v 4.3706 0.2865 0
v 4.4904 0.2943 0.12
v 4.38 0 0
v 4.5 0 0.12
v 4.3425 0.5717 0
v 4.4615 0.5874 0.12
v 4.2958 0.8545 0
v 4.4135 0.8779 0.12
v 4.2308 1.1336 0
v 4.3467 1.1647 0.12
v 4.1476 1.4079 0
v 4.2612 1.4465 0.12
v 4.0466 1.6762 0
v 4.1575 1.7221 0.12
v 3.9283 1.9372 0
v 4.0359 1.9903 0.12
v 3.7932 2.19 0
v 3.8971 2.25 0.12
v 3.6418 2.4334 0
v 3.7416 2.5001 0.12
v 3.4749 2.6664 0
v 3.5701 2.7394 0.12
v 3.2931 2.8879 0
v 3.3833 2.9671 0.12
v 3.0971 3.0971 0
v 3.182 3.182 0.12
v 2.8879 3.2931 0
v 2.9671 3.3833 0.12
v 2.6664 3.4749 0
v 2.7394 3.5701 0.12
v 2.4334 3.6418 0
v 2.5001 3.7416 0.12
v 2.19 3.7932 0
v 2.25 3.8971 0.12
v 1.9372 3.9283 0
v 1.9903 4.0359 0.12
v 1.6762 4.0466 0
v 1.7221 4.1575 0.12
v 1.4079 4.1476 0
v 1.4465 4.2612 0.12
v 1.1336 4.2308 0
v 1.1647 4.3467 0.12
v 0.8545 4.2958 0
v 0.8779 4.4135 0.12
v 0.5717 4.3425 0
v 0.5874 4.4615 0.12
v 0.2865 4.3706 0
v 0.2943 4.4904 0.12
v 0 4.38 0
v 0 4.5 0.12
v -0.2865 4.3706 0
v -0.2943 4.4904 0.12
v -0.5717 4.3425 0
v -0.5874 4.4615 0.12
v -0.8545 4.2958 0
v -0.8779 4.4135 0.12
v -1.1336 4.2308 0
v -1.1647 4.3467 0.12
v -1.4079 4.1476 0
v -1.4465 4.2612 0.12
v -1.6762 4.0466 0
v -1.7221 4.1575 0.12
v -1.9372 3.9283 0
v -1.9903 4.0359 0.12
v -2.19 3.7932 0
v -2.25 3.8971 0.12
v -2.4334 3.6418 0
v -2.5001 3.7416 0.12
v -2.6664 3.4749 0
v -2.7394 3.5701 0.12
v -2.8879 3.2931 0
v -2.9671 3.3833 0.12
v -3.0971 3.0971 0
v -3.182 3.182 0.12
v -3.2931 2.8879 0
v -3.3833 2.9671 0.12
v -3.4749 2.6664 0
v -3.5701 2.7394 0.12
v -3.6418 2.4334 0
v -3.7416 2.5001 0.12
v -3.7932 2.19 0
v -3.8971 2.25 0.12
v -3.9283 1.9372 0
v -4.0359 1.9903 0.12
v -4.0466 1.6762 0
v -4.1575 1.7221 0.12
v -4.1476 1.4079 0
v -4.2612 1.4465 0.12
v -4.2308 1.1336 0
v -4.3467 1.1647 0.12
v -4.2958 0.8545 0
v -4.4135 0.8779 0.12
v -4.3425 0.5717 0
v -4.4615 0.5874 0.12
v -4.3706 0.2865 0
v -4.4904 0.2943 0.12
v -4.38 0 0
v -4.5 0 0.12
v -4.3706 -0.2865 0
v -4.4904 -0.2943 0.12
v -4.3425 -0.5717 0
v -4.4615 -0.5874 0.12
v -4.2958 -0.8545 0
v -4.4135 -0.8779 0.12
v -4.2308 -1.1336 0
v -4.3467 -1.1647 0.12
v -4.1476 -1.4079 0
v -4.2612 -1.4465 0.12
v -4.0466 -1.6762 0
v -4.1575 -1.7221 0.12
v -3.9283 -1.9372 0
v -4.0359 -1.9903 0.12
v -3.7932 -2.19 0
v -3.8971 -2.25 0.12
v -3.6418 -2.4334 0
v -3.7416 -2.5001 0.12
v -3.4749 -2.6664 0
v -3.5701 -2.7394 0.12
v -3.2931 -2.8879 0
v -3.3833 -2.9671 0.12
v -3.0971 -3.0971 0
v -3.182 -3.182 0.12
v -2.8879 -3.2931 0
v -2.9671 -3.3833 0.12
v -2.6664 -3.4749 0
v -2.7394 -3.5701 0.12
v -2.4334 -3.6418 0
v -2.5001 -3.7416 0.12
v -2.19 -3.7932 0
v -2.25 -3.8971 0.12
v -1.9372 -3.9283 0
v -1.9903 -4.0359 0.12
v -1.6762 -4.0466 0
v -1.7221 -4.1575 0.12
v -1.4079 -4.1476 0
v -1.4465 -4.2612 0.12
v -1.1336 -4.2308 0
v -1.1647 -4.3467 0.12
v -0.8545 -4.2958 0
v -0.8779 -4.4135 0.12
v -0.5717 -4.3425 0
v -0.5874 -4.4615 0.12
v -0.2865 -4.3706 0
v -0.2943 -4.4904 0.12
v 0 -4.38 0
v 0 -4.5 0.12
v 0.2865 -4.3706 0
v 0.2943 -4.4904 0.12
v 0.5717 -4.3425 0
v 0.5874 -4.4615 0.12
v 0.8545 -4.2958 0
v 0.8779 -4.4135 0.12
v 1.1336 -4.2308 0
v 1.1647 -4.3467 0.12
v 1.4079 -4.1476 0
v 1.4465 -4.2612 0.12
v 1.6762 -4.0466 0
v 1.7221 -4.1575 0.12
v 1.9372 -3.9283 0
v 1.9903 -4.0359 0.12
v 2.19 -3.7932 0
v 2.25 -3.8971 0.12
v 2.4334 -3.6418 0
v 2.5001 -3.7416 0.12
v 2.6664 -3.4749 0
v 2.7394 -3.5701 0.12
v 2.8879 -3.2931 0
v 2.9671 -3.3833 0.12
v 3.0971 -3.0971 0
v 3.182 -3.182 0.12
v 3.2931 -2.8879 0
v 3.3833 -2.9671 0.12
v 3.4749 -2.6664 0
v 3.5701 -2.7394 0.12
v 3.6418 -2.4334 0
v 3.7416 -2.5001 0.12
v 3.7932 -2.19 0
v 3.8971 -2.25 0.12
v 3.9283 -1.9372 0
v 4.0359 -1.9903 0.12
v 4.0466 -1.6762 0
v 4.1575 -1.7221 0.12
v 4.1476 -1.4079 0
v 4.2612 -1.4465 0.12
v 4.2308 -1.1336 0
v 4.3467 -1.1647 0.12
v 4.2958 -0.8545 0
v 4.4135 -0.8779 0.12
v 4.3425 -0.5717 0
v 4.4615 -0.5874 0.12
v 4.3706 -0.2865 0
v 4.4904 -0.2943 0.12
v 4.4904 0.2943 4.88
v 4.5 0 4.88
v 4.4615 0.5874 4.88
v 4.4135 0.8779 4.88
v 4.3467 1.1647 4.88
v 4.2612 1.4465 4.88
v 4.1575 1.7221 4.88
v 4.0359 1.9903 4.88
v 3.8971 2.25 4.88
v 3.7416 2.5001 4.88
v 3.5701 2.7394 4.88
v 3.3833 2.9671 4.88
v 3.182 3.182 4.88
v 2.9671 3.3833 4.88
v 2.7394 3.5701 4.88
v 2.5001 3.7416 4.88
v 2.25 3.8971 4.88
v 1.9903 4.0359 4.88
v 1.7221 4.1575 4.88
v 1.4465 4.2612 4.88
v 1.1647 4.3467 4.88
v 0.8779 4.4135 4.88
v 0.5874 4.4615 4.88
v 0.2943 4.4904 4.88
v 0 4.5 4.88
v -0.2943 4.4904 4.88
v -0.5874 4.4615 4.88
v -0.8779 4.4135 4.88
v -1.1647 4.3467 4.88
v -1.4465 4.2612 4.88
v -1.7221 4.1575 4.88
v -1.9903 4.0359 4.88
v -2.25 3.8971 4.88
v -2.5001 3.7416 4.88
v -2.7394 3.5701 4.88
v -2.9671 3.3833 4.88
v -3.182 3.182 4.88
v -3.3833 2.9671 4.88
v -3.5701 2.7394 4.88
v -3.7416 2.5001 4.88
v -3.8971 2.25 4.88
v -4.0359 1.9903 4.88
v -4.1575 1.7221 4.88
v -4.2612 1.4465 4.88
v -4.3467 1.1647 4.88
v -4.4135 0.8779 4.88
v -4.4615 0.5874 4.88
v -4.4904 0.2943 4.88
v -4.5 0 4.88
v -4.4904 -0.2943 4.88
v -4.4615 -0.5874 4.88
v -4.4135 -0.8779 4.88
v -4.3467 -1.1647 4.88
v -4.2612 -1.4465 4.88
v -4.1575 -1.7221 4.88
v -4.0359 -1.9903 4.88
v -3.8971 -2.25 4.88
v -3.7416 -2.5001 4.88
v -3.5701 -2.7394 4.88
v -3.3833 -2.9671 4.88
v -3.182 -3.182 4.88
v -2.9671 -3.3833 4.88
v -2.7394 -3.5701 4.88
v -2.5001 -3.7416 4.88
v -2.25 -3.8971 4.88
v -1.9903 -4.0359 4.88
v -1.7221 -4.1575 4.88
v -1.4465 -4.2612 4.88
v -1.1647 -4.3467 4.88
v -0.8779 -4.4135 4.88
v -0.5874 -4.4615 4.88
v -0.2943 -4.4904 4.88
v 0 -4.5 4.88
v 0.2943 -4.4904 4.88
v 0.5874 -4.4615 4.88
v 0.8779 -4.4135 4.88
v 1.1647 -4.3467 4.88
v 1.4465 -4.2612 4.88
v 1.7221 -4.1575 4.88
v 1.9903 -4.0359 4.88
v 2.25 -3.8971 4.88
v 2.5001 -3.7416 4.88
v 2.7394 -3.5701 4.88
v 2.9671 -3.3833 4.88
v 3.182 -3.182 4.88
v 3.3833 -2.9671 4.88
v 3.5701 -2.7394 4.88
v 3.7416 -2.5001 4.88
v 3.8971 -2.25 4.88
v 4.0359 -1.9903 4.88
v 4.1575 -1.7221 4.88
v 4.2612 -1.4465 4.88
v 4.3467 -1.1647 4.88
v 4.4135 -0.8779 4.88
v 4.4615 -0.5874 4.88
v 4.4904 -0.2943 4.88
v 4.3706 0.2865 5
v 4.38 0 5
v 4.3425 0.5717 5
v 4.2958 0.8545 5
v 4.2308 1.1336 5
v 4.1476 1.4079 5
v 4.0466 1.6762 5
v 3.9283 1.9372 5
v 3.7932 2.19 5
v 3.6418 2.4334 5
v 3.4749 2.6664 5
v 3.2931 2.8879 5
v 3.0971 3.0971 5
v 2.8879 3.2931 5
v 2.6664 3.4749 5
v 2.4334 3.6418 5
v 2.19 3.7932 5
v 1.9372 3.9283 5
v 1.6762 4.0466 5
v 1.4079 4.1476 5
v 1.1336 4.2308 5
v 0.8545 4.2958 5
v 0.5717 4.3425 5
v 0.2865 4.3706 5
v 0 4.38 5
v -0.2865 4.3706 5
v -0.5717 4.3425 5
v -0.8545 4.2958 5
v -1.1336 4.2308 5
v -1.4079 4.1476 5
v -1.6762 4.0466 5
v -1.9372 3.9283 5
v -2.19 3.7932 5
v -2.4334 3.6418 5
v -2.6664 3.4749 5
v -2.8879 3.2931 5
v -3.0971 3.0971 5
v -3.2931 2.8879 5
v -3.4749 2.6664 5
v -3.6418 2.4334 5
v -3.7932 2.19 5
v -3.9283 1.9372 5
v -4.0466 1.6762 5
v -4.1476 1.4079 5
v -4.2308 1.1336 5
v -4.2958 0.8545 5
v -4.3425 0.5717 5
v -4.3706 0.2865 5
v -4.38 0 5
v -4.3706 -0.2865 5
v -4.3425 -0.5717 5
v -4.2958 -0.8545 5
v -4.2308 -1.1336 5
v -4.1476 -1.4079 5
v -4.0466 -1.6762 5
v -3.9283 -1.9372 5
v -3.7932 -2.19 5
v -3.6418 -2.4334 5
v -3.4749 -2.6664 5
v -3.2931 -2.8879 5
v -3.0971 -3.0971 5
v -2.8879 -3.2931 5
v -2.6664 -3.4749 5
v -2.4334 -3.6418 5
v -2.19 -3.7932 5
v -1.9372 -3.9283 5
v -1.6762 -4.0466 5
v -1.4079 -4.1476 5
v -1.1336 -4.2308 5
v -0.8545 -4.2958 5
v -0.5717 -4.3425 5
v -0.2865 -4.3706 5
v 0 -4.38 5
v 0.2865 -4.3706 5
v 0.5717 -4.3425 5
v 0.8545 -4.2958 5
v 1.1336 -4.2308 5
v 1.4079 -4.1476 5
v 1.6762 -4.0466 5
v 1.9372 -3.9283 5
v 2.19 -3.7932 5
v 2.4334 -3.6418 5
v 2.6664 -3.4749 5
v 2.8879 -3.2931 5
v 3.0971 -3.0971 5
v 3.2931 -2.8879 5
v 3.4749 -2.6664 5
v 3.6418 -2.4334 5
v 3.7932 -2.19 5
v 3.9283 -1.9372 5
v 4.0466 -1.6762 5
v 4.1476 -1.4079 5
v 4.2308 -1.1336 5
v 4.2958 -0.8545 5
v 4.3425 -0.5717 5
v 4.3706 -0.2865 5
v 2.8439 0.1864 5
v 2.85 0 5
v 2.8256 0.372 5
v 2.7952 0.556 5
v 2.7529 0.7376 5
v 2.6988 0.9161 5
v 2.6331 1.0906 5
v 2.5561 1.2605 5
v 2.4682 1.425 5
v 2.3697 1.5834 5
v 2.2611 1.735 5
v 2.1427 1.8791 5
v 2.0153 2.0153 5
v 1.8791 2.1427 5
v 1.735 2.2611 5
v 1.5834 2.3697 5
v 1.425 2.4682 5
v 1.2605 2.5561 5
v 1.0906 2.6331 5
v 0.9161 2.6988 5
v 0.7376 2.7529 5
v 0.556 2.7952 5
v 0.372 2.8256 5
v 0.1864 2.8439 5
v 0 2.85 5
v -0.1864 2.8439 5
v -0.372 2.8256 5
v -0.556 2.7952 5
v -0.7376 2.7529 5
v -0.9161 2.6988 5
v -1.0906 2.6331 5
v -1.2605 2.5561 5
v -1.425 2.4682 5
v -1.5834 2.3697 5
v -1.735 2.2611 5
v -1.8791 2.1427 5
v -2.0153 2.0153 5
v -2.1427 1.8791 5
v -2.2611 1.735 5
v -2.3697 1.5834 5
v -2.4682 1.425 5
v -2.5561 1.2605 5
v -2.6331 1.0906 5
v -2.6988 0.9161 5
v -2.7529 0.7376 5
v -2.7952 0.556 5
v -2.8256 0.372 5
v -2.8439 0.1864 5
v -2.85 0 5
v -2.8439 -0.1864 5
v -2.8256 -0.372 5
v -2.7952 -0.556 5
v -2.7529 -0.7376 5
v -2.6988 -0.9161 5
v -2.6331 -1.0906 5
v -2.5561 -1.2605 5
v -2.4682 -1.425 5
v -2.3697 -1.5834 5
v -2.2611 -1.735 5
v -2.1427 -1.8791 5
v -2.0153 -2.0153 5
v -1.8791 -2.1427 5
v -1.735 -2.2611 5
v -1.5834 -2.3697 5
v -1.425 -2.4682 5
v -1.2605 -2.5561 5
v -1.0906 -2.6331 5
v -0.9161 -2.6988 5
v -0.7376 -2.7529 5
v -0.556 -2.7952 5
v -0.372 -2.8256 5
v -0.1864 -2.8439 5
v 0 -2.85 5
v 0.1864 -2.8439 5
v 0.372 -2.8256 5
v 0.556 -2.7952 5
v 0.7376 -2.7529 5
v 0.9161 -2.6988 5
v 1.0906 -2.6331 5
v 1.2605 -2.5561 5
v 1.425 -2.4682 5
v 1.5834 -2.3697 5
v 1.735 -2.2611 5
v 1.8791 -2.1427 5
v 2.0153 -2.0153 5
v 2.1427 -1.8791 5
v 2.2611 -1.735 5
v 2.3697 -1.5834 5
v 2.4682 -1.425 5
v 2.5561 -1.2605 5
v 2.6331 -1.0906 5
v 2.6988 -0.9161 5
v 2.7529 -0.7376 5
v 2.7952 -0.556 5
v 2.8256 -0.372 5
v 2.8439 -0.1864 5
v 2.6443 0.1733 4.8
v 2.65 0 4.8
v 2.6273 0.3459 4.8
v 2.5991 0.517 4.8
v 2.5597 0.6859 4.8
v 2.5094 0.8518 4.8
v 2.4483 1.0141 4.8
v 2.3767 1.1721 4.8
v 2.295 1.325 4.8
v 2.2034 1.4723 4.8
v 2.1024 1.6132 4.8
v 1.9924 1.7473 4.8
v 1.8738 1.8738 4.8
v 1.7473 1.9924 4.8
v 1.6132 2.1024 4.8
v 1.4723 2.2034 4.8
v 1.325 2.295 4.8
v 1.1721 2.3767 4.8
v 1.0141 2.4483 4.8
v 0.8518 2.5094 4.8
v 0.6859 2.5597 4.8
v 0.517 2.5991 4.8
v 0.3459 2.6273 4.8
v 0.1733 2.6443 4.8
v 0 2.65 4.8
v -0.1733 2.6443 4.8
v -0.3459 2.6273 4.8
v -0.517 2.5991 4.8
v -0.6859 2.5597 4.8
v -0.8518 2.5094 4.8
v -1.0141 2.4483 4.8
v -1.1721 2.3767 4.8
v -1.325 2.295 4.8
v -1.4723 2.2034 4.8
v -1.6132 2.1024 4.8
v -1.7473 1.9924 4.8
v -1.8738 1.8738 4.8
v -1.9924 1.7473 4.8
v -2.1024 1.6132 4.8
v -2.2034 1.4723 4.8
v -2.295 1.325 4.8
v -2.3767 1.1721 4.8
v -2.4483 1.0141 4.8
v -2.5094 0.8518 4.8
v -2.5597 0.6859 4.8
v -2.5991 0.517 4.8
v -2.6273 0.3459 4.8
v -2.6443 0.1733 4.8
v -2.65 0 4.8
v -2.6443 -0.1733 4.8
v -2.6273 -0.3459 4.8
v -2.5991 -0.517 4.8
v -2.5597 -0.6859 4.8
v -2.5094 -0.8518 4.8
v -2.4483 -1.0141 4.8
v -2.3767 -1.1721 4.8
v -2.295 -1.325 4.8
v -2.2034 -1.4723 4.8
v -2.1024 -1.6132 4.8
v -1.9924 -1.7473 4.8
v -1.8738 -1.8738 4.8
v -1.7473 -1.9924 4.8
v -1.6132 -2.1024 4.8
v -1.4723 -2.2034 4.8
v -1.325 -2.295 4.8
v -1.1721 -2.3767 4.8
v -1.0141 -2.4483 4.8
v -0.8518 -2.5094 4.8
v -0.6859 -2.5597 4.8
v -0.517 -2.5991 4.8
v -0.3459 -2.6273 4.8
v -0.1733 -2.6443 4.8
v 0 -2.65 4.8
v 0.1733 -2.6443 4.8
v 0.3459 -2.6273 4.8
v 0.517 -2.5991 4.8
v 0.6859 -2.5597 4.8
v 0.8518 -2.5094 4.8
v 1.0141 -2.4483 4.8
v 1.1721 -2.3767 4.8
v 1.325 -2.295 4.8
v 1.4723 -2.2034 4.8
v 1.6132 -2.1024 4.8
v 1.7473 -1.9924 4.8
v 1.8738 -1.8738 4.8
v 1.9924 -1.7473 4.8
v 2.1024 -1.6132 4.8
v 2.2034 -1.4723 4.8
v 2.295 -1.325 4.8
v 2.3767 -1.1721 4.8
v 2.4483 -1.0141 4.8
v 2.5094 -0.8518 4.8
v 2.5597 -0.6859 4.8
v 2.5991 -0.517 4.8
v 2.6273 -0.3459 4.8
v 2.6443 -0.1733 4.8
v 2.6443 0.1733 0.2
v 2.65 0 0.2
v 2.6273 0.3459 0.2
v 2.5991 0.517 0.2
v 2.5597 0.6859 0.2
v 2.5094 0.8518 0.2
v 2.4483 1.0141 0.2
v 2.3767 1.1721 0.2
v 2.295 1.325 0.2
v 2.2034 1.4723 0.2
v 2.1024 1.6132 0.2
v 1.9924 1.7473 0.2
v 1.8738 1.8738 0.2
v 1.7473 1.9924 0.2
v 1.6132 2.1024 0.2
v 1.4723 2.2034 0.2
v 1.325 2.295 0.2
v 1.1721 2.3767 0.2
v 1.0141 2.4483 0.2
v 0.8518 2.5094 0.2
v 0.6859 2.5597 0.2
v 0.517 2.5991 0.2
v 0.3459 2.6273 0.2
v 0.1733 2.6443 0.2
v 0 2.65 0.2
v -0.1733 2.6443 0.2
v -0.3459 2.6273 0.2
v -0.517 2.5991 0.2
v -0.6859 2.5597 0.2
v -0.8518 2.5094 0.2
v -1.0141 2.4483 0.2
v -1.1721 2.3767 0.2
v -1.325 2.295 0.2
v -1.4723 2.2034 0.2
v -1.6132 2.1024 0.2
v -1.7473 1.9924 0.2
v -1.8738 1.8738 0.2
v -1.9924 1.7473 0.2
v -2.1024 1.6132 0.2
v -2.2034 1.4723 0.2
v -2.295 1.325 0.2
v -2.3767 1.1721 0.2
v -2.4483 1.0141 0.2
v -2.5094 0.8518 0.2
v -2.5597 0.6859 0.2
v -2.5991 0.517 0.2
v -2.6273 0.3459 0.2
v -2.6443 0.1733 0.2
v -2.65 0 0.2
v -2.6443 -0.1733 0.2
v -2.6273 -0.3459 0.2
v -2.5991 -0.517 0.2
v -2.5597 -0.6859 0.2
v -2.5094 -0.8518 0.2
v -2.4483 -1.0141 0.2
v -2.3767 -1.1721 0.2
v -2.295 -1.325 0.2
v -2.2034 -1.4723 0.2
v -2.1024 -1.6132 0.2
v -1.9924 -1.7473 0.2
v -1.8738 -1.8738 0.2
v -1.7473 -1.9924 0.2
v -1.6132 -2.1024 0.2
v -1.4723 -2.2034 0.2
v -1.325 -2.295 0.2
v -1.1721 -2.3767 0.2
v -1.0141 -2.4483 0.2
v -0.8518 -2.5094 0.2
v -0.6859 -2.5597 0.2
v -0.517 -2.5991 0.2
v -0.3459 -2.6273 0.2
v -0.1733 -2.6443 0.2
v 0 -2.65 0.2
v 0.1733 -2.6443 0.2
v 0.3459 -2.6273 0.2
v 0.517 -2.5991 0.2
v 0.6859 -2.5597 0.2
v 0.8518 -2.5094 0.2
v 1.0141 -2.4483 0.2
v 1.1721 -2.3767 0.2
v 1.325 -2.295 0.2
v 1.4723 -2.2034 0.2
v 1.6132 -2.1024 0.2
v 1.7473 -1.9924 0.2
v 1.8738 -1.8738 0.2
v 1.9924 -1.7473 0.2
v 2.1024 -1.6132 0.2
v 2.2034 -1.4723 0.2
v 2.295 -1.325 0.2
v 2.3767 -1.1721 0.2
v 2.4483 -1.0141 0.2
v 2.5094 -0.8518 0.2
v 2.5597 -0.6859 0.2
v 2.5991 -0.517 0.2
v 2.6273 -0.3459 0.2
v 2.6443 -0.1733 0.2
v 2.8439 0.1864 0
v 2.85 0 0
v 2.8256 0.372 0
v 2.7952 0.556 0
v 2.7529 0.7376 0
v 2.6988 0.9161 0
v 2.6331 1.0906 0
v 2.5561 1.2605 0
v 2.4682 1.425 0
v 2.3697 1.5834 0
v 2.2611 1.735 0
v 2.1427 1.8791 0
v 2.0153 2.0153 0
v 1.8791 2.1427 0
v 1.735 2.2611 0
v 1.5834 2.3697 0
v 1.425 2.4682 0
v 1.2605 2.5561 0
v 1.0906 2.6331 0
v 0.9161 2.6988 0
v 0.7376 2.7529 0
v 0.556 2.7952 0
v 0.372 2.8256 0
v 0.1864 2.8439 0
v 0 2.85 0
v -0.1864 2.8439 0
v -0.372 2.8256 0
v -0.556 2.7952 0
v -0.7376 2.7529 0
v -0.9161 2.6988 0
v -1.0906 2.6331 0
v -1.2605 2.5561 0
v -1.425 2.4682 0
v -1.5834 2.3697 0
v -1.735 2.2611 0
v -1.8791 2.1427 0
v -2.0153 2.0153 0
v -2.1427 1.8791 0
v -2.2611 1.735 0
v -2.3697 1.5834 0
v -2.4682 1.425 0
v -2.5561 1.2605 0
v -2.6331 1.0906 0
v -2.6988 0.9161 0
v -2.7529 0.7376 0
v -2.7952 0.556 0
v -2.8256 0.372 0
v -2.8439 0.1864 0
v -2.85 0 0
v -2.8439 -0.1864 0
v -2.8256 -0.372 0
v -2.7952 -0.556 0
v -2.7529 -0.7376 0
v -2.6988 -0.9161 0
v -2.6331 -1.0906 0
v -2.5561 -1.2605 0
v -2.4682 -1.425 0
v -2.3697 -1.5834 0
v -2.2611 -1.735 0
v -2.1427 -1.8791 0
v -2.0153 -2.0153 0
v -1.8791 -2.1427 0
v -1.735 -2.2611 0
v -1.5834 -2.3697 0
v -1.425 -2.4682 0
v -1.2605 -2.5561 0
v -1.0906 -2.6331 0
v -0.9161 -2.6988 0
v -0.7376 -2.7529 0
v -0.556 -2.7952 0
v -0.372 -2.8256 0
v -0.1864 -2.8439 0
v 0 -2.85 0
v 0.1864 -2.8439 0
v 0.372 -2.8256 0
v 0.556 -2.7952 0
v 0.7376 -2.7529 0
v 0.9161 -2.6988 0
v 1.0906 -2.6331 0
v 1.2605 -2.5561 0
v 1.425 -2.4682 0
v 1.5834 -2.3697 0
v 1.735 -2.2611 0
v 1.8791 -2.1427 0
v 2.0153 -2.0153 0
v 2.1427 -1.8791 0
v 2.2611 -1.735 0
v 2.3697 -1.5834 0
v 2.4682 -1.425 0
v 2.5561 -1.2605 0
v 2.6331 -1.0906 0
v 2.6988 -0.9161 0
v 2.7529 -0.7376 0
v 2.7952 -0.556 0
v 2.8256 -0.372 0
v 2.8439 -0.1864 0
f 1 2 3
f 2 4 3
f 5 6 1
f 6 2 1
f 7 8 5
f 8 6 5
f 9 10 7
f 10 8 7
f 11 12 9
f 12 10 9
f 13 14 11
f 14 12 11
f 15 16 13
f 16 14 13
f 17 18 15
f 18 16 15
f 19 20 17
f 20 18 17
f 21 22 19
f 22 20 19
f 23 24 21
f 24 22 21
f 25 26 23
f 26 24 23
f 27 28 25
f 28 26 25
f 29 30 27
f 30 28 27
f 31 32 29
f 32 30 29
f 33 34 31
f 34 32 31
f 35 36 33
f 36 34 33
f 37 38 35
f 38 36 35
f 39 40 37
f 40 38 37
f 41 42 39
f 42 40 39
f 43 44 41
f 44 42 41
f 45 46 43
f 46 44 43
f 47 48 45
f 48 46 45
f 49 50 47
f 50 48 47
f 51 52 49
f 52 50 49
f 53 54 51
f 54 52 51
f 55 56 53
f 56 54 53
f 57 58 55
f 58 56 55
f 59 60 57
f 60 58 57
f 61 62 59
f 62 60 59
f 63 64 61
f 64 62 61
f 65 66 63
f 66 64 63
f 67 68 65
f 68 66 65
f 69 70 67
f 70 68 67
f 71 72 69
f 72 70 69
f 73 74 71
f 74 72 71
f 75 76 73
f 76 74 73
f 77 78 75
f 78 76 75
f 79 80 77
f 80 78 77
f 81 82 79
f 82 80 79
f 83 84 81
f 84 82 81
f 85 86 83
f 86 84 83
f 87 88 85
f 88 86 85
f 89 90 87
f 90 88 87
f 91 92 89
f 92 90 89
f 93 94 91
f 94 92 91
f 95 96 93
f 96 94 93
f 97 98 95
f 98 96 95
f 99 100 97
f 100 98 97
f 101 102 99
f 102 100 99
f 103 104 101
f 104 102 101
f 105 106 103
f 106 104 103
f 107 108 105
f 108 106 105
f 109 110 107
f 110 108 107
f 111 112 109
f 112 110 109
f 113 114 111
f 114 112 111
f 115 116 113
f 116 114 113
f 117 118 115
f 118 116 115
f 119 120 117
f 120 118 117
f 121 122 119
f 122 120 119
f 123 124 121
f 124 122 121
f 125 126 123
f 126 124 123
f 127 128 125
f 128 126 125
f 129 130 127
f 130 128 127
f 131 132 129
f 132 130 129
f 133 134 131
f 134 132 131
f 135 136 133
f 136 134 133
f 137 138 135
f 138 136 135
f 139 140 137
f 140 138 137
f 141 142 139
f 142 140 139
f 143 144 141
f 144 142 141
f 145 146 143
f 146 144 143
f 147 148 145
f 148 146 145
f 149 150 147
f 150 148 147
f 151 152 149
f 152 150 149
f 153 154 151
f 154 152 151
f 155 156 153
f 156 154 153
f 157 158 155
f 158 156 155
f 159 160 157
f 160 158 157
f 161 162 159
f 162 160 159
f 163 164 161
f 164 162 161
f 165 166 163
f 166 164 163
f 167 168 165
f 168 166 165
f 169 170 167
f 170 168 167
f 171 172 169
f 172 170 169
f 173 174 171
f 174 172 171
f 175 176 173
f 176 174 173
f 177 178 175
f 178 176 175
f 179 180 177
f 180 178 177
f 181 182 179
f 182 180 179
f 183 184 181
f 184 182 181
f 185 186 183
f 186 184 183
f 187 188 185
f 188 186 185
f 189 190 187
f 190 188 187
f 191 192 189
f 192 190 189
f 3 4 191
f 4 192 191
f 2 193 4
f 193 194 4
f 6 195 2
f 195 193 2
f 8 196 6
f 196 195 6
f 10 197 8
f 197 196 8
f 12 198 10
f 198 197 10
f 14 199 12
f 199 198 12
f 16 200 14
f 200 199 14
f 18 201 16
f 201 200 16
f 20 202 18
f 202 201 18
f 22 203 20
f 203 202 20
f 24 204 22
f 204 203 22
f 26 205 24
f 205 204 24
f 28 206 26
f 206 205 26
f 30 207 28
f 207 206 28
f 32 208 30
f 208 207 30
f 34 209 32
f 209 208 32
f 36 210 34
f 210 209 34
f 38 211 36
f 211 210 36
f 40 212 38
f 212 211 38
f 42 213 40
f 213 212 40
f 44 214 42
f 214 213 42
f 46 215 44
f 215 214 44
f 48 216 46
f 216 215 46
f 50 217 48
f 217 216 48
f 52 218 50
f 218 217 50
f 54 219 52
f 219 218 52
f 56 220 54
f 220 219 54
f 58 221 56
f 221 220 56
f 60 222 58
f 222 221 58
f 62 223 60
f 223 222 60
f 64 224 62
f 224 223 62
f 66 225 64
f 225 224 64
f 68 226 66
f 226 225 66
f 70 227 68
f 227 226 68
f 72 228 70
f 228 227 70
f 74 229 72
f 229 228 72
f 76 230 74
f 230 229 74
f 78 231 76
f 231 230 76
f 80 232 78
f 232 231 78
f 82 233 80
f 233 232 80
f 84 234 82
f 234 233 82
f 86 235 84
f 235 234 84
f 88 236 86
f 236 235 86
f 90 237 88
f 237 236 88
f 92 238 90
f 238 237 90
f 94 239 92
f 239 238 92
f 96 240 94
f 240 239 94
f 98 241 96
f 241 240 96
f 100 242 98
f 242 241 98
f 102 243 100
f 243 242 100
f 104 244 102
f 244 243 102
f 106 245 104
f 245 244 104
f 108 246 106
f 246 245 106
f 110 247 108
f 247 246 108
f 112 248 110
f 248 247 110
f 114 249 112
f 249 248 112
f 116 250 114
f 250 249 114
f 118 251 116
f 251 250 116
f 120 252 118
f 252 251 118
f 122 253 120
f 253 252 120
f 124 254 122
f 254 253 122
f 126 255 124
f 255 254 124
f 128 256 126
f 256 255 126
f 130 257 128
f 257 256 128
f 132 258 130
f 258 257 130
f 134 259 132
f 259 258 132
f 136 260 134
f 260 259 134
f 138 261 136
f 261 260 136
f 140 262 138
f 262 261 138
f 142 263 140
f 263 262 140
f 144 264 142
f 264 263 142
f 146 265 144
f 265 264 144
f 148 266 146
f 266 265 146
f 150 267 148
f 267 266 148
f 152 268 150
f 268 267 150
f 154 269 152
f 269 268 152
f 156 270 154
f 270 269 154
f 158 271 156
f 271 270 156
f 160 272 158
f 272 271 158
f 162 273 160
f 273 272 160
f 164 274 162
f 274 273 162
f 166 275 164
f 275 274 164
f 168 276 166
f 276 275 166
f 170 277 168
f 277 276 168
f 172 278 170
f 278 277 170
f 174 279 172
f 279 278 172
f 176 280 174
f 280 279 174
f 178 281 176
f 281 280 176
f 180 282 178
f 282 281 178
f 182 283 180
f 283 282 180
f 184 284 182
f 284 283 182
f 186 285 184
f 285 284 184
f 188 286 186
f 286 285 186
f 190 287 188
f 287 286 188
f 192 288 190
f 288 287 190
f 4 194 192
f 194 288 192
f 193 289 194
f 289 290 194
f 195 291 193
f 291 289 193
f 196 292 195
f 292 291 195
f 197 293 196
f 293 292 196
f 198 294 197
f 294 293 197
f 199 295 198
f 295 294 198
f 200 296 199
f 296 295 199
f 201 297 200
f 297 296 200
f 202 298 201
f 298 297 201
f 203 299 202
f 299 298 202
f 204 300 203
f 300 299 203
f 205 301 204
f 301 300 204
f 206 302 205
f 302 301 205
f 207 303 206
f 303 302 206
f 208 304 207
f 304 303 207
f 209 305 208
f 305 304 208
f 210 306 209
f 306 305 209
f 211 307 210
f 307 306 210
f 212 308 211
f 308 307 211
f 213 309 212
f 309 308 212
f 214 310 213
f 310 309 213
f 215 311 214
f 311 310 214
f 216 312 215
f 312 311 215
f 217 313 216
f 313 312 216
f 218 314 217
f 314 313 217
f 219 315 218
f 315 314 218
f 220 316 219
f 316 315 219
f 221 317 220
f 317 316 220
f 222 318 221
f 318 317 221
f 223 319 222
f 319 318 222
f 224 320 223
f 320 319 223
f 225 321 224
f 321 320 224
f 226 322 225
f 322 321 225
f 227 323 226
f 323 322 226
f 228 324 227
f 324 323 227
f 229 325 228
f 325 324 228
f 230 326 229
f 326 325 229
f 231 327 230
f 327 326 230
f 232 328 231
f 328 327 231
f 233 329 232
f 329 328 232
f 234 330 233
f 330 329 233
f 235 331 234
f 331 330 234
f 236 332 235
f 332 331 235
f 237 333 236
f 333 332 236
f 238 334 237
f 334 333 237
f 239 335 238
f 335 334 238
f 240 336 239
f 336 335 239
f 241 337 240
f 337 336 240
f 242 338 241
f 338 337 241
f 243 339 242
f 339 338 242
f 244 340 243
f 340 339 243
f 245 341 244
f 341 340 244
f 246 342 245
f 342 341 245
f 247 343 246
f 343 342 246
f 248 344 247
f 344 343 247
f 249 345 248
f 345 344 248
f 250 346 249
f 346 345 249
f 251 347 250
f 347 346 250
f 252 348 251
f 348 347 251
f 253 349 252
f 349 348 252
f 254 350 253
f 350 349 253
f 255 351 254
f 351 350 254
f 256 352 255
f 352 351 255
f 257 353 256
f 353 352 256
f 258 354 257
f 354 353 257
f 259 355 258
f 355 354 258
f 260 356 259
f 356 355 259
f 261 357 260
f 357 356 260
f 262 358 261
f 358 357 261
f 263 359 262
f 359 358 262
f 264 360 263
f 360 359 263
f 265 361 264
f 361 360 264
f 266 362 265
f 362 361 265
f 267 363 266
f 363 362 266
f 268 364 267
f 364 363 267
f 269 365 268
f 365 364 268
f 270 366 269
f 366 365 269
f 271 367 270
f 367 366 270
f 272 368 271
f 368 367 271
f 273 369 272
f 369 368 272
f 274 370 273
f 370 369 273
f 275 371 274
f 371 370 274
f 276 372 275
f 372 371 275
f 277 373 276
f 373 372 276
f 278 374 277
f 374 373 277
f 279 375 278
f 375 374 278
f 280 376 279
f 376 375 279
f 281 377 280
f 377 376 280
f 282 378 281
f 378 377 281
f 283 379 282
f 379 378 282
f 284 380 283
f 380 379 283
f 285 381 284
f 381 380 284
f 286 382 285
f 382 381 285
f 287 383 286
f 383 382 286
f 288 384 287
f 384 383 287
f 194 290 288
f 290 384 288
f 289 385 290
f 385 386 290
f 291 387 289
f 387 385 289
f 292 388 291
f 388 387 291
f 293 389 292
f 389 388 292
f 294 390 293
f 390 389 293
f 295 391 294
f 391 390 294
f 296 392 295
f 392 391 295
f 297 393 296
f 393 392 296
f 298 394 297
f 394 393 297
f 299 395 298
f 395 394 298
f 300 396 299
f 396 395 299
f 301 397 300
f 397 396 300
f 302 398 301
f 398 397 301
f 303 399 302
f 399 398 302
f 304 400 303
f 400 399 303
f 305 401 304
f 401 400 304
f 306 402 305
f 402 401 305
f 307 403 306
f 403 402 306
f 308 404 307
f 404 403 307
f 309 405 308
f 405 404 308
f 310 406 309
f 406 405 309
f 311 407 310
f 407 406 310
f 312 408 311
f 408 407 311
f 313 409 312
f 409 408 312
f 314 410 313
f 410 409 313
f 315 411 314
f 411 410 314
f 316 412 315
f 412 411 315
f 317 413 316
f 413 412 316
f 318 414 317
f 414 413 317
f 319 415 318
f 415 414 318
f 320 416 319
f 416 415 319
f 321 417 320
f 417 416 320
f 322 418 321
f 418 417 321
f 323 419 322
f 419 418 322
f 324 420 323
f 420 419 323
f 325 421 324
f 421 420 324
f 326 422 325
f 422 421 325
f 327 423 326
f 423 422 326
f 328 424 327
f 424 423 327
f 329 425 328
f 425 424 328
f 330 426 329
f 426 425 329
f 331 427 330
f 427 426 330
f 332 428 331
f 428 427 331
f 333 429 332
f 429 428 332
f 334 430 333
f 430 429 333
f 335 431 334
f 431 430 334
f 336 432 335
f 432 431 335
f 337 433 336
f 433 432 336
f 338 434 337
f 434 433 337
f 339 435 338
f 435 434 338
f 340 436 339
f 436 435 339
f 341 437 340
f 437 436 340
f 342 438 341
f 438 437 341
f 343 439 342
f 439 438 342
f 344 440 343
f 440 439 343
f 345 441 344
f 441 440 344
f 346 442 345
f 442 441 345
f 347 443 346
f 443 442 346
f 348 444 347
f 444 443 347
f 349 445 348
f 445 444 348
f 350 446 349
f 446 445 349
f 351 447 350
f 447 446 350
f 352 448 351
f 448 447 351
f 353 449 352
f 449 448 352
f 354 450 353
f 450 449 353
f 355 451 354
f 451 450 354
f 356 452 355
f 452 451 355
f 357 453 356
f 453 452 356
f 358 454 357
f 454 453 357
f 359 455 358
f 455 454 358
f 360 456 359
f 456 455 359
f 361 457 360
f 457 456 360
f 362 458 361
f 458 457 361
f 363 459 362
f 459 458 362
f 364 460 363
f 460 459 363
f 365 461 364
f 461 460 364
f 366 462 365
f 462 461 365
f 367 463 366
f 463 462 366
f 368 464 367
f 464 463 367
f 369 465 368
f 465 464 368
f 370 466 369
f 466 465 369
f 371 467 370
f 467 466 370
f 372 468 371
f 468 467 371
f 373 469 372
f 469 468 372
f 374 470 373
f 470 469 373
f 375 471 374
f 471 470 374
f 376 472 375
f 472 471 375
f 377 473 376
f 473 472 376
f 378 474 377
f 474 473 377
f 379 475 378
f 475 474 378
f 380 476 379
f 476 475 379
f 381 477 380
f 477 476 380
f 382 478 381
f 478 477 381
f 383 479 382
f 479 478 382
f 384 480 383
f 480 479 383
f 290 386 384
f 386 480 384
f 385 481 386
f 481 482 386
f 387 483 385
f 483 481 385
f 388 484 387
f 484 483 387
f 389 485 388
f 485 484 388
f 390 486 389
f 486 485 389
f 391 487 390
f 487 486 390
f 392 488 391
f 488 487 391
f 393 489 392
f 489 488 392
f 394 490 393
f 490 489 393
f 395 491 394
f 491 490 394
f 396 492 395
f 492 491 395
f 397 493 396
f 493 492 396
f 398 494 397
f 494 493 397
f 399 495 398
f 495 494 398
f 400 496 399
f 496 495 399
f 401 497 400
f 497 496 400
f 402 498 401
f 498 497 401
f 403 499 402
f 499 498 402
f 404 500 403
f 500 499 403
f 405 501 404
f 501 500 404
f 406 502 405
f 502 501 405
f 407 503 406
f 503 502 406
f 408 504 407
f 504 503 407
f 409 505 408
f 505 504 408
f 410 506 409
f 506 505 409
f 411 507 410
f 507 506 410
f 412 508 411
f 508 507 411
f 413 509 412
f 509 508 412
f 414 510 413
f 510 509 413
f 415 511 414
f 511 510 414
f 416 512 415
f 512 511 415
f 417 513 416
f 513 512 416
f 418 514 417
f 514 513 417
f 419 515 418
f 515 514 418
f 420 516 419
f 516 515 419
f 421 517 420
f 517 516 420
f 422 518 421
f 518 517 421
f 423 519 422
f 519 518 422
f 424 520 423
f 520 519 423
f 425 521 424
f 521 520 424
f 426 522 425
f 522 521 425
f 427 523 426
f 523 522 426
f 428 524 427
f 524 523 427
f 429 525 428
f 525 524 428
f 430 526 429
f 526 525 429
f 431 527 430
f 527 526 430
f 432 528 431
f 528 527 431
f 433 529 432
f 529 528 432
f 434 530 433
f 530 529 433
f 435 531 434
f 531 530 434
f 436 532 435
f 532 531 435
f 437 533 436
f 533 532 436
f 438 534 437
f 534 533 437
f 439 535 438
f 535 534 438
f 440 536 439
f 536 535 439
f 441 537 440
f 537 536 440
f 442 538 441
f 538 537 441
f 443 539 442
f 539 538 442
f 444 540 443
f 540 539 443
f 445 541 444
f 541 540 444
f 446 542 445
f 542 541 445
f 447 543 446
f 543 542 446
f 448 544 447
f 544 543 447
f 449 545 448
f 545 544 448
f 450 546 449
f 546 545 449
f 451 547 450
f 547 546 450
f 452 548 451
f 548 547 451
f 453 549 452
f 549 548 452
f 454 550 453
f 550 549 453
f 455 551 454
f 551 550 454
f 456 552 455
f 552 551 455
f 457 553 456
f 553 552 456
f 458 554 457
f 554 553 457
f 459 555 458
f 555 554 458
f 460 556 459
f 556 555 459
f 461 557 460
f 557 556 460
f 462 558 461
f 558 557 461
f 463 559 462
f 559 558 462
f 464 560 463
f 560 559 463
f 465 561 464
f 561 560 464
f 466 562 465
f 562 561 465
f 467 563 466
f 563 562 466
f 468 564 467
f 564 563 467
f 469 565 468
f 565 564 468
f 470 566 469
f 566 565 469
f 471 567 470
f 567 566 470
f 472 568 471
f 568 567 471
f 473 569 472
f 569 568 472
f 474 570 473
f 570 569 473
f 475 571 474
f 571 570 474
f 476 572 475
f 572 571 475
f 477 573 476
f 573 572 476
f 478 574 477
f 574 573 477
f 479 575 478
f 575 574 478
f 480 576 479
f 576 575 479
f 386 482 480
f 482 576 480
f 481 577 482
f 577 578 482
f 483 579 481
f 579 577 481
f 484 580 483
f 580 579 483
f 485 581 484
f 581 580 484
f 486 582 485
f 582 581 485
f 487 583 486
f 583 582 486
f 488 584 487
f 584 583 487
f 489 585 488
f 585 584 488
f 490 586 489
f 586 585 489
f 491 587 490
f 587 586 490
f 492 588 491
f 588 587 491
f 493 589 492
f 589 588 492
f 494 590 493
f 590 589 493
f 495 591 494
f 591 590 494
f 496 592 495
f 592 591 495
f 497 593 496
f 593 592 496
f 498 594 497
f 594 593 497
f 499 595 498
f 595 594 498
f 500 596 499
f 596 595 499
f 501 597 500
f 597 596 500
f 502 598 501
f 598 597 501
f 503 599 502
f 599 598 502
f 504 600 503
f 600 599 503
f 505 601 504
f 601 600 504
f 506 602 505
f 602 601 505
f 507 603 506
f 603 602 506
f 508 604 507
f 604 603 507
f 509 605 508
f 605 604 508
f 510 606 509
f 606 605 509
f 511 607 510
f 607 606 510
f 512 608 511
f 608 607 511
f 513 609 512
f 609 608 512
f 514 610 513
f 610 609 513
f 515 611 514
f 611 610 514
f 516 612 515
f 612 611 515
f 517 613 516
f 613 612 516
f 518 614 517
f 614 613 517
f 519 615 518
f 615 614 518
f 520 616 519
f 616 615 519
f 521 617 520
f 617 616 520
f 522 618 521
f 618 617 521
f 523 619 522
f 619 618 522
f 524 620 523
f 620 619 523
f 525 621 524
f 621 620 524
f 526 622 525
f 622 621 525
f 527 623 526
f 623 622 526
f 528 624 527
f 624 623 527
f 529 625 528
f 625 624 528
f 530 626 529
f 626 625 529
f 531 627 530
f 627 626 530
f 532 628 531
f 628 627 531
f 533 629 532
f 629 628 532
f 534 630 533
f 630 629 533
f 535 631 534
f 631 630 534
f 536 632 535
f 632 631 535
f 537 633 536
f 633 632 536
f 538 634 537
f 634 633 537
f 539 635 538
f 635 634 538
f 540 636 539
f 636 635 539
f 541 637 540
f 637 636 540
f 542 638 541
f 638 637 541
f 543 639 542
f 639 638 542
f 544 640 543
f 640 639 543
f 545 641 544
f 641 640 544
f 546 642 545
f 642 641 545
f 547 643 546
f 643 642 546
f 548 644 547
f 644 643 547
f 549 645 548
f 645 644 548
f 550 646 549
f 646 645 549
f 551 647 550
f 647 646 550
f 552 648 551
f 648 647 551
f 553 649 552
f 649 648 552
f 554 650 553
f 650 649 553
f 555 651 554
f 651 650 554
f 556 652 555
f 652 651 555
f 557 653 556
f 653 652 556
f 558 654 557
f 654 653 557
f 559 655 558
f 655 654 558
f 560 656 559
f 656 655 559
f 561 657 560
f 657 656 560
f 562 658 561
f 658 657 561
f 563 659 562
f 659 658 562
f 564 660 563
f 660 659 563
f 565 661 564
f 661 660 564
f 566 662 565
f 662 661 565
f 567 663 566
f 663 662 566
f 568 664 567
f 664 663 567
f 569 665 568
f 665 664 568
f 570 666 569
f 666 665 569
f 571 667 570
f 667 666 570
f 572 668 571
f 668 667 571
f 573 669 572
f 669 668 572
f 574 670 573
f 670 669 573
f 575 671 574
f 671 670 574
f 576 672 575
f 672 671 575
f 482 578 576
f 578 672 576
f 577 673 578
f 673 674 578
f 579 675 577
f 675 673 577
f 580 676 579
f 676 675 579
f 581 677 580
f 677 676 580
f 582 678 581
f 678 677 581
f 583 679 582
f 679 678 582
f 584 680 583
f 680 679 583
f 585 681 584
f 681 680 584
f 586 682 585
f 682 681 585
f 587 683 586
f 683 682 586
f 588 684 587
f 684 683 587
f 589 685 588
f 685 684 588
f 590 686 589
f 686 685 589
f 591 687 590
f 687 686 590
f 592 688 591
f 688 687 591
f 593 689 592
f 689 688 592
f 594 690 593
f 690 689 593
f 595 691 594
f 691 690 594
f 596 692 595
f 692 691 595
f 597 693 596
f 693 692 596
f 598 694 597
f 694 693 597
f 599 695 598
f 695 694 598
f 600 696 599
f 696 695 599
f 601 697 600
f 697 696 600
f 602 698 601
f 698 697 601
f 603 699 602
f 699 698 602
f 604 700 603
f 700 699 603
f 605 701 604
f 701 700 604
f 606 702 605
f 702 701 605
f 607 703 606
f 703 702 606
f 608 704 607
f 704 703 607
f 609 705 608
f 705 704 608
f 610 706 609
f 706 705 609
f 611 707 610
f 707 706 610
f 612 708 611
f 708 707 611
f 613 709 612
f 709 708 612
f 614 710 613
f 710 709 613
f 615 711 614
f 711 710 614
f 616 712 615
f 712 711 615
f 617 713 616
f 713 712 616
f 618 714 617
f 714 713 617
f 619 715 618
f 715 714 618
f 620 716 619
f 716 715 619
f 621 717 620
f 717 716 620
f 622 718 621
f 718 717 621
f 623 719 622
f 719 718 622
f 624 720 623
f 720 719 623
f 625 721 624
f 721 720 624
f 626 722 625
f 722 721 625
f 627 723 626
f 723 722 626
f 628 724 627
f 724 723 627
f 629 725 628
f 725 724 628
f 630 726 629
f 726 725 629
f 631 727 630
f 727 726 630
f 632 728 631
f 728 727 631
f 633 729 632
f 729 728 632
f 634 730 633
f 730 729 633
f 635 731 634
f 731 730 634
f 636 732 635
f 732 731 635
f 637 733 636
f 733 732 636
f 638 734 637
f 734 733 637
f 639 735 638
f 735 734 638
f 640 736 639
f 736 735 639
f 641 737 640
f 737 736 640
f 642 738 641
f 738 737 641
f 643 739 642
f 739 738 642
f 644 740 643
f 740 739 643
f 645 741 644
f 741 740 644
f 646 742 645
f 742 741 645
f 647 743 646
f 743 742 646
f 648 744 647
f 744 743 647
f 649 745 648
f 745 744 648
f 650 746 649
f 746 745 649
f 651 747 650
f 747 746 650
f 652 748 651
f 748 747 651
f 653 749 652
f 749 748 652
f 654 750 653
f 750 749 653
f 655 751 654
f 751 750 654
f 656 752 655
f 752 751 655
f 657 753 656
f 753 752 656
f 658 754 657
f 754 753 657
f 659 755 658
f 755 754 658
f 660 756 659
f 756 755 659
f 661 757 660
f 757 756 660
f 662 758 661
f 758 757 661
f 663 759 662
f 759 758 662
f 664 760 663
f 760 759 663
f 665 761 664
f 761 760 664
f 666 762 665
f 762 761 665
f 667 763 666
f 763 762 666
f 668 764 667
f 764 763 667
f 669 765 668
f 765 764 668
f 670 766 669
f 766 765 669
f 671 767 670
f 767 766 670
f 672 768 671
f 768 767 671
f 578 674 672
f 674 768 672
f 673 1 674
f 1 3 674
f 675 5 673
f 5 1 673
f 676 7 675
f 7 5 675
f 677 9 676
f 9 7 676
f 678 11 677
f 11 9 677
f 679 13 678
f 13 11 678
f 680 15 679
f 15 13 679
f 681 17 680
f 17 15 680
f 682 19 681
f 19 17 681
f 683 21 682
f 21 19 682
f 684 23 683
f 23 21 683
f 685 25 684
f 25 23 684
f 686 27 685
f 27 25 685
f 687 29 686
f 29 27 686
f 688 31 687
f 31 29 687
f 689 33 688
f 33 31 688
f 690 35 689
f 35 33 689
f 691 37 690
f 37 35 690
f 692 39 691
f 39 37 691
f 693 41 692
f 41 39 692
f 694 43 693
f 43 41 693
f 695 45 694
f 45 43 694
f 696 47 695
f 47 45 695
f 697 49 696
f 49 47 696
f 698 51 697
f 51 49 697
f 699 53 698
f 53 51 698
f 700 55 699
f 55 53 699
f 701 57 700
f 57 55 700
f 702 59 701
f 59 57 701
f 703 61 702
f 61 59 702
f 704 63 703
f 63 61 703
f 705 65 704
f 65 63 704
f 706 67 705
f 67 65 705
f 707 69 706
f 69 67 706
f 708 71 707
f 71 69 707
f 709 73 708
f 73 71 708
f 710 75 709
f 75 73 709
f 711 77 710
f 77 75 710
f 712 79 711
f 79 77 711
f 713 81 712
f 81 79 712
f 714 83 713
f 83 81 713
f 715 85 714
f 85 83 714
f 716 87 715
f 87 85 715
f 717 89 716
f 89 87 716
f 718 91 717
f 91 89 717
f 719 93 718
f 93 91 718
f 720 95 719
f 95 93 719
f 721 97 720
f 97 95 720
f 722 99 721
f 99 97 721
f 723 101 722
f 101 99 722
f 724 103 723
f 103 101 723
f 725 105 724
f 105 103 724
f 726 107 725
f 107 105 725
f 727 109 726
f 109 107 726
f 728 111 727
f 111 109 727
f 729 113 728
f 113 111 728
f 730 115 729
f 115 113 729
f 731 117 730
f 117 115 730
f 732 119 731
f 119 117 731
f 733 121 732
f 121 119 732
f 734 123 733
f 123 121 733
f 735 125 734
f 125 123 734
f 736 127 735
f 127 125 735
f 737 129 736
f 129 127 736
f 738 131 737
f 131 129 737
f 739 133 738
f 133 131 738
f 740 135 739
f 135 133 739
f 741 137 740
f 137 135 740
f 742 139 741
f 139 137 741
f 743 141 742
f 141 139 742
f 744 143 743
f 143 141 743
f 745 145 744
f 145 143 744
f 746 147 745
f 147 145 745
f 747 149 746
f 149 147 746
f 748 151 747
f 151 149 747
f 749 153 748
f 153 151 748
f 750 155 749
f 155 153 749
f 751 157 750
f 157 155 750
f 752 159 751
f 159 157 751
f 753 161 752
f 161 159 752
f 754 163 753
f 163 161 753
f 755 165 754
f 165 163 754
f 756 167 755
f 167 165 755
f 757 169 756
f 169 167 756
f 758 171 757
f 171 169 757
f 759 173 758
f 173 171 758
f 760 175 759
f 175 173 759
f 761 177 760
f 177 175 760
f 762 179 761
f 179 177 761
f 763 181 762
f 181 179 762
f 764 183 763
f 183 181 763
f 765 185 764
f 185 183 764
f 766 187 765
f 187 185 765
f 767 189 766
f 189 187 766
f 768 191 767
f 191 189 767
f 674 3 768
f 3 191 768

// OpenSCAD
// OOMP generic catalogue model; units: mm.
// Stud length is additional to body depth. Tapping depths are model assumptions.
variant = "full"; // [full, display]
family = "spacer";
connection_type = "plain";
depth_mm = 5;
stud_length_mm = 0;
tapped_depth_mm = 0;
bore_mm = 5.3;
outer_diameter_mm = 9;
across_flats_mm = 6;
thread_nominal_diameter_mm = 3;
thread_pitch_mm = 0.5;
edge_chamfer_mm = 0.12;
mouth_chamfer_mm = 0.2;
angular_segments = 96;
samples_per_pitch = 16;

// Boundary travels up the outside, then down any tapped/plain bore.
// Equal-height rings at shoulders form the annular shoulder faces.
n = angular_segments;
threaded = family == "standoff";
has_stud = connection_type == "stud_to_tapped" || connection_type == "stud_to_stud";
two_studs = connection_type == "stud_to_stud";
through = !threaded || connection_type == "tapped_to_tapped";
pitch = thread_pitch_mm;
diameter = threaded ? thread_nominal_diameter_mm : bore_mm;
minor = diameter - 5*sqrt(3)*pitch/8;
transition = mouth_chamfer_mm + (threaded ? 5*sqrt(3)*pitch/16 : 0);
tip_chamfer = mouth_chamfer_mm + 17*sqrt(3)*pitch/48;
function sorted(v) = len(v)<=1 ? v : let(p=v[0])
    concat(sorted([for(x=v) if(x<p-1e-8) x]), [p], sorted([for(x=v) if(x>p+1e-8) x]));
function reverse(v) = [for(i=[len(v)-1:-1:0]) v[i]];
function theta(i) = i*360/n;
function fract(x) = x-floor(x);
function phase_distance(i,z) = abs(fract(z/pitch-theta(i)/360+0.5)-0.5);
function thread_r(i,z) = minor/2 + min(5*sqrt(3)*pitch/16,
    max(0,(phase_distance(i,z)-0.125)*pitch*sqrt(3)));
function stud_r(i,z,tip) = min(diameter/2 - (variant=="full" ?
    min(17*sqrt(3)*pitch/48,max(0,(phase_distance(i,z)-0.0625)*pitch*sqrt(3))) : 0),
    diameter/2-tip_chamfer+abs(z-tip));
function body_r(i,z) = (threaded ? across_flats_mm/2/cos(theta(i)%60-30) : outer_diameter_mm/2)
    - max(0,edge_chamfer_mm-min(z,depth_mm-z));
function bore_r(i,z) = max(threaded ? (variant=="full" ? thread_r(i,z) : minor/2) : diameter/2,
    diameter/2+mouth_chamfer_mm-(through ? min(z,depth_mm-z) : depth_mm-z));
function stud_z(a,b,tip) = let(count=variant=="full" ? ceil(stud_length_mm/pitch*samples_per_pitch) : 1)
    sorted(concat([for(i=[0:count]) a+(b-a)*i/count], [tip==a ? tip+tip_chamfer : tip-tip_chamfer]));
body_z = sorted([0,edge_chamfer_mm,depth_mm-edge_chamfer_mm,depth_mm]);
low = through ? 0 : depth_mm-tapped_depth_mm;
count = threaded && variant=="full" ? ceil((depth_mm-low)/pitch*samples_per_pitch) : 1;
bore_z = two_studs ? [] : reverse(sorted(concat(
    [for(i=[0:count]) low+(depth_mm-low)*i/count],
    [depth_mm-mouth_chamfer_mm,depth_mm-transition],
    through ? [mouth_chamfer_mm,transition] : [])));
// Ring descriptors: [height, kind, tip]. Kind: 0 body, 1 stud, 2 bore.
rings = concat(
    has_stud ? [for(z=stud_z(-stud_length_mm,0,-stud_length_mm)) [z,1,-stud_length_mm]] : [],
    [for(z=body_z) [z,0,0]],
    two_studs ? [for(z=stud_z(depth_mm,depth_mm+stud_length_mm,depth_mm+stud_length_mm)) [z,1,depth_mm+stud_length_mm]] : [],
    [for(z=bore_z) [z,2,0]]);
function radius(i,ring) = ring[1]==0 ? body_r(i,ring[0]) :
    ring[1]==1 ? stud_r(i,ring[0],ring[2]) : bore_r(i,ring[0]);
points = concat([for(ring=rings) for(i=[0:n-1])
    [radius(i,ring)*cos(theta(i)),radius(i,ring)*sin(theta(i)),ring[0]]],
    through ? [] : [[0,0,rings[0][0]],[0,0,rings[len(rings)-1][0]]]);
center = len(rings)*n;
last = (len(rings)-1)*n;
// OpenSCAD winding is opposite to STL winding.
faces = concat(
    [for(j=[0:len(rings)-(through ? 1 : 2)]) for(i=[0:n-1]) each
        let(a=j*n+i,b=j*n+(i+1)%n,c=((j+1)%len(rings))*n+(i+1)%n,d=((j+1)%len(rings))*n+i)
        [[a,c,b],[a,d,c]]],
    through ? [] : [for(i=[0:n-1]) each let(k=(i+1)%n)
        [[center,i,k],[center+1,last+k,last+i]]]);
assert(family=="spacer" || family=="standoff");
assert(!threaded || connection_type=="tapped_to_tapped" || has_stud);
assert(depth_mm>0 && diameter>0 && pitch>0);
assert(variant=="full" || variant=="display");
assert(n>=24 && n%12==0 && samples_per_pitch>=8);
assert(mouth_chamfer_mm>0 && mouth_chamfer_mm<depth_mm/2);
assert(edge_chamfer_mm>=0 && edge_chamfer_mm<depth_mm/2);
assert(diameter+4*max(mouth_chamfer_mm,edge_chamfer_mm) < (threaded ? across_flats_mm : outer_diameter_mm));
assert(!has_stud || stud_length_mm>2*mouth_chamfer_mm);
assert(!through || !threaded || 2*transition<depth_mm);
assert(connection_type!="stud_to_tapped" || (tapped_depth_mm>transition && tapped_depth_mm<depth_mm));
color([0.86,0.85,0.81]) polyhedron(points=points,faces=faces,convexity=20);
